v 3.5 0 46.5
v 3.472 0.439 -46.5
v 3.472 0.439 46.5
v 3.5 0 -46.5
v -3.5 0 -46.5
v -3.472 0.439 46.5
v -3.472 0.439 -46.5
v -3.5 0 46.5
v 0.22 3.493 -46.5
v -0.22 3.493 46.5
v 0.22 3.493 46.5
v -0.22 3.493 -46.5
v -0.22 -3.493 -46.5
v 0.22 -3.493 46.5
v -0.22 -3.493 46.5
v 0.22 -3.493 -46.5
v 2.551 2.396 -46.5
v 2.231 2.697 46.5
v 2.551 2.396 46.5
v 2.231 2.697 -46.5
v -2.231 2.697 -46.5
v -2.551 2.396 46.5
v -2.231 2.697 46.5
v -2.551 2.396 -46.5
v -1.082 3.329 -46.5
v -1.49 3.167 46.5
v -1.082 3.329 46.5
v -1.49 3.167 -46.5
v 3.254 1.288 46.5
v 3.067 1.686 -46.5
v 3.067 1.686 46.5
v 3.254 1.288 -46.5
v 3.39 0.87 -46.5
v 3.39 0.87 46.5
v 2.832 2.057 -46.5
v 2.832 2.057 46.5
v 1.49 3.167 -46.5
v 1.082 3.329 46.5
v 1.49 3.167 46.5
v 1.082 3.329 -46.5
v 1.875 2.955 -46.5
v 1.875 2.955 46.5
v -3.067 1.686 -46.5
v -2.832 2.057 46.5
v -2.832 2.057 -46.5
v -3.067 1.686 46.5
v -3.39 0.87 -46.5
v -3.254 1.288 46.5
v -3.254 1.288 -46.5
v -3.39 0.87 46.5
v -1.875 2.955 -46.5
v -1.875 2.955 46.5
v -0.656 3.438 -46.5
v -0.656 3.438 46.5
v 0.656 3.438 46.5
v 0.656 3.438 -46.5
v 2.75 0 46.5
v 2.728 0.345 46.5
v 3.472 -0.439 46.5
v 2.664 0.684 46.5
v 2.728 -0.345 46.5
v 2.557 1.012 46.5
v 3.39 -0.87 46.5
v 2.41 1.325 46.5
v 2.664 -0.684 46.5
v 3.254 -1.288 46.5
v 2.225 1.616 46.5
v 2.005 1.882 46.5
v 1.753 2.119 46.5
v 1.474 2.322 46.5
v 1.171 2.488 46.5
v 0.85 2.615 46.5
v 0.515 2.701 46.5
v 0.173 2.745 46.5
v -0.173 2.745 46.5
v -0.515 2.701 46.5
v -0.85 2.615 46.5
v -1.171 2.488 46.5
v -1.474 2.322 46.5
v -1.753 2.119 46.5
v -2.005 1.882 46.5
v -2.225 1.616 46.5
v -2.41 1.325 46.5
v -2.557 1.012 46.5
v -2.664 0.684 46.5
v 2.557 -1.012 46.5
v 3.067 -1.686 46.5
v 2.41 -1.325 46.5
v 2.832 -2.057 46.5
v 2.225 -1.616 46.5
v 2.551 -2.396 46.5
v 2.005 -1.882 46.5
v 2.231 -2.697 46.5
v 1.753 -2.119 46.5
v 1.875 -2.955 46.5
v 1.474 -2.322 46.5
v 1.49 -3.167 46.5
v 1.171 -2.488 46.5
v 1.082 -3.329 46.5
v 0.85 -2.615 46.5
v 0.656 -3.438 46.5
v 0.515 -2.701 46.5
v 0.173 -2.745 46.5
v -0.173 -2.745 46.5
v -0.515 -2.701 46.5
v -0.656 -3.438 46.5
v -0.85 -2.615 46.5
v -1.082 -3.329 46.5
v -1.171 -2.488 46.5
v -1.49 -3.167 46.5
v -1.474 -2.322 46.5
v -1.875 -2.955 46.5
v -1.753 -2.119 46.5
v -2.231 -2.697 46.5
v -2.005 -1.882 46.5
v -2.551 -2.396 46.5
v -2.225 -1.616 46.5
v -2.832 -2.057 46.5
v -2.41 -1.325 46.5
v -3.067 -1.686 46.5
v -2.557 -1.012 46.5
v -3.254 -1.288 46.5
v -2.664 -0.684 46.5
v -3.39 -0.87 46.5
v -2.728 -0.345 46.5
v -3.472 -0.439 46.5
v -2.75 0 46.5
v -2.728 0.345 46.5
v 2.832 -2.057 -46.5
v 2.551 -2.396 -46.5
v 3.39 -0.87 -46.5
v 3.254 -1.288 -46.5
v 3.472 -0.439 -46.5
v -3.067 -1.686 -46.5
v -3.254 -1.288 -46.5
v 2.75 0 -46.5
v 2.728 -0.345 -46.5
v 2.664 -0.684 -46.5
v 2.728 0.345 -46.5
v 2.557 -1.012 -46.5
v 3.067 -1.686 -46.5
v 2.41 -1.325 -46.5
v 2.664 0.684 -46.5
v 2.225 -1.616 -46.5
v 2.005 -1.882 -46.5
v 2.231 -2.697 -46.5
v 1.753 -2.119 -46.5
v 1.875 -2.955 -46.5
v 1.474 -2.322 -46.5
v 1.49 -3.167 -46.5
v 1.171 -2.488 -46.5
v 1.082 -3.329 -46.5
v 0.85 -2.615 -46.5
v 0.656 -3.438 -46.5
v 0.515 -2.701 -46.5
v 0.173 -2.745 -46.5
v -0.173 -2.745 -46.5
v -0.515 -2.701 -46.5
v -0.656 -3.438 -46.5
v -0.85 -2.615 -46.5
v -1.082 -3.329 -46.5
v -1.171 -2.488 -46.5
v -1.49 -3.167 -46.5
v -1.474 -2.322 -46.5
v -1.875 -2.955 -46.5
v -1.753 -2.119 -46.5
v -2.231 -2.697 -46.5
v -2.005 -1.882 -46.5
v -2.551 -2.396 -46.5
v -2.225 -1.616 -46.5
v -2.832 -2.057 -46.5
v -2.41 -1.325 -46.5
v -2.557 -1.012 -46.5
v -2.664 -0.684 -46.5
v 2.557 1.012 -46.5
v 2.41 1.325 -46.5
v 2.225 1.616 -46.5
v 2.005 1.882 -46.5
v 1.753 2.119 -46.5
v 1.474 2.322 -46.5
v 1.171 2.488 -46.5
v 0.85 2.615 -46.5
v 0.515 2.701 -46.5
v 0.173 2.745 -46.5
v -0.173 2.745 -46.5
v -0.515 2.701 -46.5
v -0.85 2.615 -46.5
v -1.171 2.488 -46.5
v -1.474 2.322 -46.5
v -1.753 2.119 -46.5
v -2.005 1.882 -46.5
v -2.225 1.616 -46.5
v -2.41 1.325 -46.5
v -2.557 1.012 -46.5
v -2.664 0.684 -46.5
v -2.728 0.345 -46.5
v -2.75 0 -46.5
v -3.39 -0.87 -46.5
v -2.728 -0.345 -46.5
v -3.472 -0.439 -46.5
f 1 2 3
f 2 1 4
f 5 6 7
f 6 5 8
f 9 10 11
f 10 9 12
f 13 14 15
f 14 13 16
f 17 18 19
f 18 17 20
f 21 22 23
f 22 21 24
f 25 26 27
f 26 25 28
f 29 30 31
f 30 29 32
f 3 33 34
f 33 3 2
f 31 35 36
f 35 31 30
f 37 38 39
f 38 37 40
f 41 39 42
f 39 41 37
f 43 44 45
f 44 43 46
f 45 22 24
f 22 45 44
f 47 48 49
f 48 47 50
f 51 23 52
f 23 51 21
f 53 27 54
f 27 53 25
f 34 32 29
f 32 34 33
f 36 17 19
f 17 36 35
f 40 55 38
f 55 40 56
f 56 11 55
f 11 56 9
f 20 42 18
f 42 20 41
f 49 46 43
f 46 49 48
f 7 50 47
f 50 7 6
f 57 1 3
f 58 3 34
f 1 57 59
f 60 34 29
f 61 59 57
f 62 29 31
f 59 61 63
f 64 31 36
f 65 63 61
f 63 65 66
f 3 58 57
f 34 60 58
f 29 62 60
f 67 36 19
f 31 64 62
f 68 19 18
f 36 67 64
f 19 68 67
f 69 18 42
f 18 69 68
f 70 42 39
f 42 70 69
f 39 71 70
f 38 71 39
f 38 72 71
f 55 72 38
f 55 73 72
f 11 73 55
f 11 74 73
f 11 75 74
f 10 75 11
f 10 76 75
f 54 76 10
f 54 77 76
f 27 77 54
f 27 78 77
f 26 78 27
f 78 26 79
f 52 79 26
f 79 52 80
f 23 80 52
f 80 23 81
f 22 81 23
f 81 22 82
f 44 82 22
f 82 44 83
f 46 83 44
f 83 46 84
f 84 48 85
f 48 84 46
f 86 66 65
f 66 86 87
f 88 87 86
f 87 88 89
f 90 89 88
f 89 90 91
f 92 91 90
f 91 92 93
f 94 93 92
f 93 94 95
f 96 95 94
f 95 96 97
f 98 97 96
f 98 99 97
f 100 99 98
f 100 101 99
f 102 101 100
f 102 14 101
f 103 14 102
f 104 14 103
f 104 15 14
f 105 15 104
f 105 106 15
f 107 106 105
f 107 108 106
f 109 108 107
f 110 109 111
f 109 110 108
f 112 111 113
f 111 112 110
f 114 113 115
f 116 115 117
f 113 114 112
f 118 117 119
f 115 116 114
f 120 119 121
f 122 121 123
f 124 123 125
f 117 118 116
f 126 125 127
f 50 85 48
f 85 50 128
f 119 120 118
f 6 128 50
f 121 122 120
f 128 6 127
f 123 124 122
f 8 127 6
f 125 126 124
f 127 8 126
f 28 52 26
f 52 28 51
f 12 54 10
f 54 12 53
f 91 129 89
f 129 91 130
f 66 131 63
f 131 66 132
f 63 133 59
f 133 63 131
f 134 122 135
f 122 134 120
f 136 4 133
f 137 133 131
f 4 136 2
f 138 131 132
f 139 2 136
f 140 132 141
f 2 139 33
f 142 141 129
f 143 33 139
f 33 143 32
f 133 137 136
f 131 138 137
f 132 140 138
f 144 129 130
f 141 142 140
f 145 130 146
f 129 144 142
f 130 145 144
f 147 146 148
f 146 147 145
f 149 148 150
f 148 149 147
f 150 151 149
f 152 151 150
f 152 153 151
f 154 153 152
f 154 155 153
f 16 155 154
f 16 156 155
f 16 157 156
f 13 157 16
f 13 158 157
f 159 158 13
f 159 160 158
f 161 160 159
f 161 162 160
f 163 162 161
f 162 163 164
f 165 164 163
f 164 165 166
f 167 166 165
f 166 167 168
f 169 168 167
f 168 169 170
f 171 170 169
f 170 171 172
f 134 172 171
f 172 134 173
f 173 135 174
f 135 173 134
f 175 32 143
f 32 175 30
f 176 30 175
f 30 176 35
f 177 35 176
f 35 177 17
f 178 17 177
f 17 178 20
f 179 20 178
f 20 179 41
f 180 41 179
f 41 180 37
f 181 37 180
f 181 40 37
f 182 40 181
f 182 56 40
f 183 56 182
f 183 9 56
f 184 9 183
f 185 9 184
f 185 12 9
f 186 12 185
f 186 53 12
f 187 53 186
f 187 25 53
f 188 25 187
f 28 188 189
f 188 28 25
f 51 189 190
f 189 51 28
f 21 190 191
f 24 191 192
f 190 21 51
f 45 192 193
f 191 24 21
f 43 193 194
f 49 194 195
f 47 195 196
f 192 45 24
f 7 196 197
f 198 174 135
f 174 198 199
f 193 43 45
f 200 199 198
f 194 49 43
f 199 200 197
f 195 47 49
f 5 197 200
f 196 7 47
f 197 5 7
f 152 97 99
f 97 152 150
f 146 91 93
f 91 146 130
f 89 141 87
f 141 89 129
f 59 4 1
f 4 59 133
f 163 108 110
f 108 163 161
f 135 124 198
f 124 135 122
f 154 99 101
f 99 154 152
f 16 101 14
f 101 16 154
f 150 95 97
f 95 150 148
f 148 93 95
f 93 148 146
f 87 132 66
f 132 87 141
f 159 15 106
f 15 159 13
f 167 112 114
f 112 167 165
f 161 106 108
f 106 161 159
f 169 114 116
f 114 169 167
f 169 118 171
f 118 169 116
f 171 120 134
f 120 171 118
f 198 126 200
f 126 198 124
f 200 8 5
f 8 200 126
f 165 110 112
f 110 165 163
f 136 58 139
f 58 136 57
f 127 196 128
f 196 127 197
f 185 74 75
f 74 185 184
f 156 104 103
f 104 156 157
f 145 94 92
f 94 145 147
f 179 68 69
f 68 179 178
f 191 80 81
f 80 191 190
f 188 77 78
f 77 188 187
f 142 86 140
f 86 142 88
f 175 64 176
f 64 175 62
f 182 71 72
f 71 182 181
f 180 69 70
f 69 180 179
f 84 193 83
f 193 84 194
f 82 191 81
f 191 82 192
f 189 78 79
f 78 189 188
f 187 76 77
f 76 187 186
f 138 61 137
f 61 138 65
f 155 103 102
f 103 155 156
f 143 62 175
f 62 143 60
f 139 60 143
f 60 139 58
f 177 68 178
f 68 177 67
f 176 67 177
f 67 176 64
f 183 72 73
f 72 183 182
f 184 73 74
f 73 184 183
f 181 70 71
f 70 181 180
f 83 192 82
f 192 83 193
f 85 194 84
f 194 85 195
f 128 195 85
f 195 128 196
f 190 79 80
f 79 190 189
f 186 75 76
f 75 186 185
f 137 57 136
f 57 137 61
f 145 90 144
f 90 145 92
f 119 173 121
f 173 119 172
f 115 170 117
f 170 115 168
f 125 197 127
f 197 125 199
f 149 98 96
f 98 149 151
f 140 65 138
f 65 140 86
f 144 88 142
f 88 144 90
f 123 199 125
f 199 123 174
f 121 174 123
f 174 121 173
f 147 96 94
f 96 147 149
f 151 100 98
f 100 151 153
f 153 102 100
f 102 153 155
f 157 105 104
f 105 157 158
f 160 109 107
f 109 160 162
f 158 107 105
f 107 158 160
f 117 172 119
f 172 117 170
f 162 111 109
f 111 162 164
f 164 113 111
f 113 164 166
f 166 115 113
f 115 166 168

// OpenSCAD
$fn = 50;


difference() {
	union() {
		translate(v = [0, 0, -46.5000000000]) {
			cylinder(h = 93, r = 3.5000000000);
		}
	}
	union() {
		translate(v = [0, 0, -100.0000000000]) {
			cylinder(h = 200, r = 2.7500000000);
		}
	}
}
